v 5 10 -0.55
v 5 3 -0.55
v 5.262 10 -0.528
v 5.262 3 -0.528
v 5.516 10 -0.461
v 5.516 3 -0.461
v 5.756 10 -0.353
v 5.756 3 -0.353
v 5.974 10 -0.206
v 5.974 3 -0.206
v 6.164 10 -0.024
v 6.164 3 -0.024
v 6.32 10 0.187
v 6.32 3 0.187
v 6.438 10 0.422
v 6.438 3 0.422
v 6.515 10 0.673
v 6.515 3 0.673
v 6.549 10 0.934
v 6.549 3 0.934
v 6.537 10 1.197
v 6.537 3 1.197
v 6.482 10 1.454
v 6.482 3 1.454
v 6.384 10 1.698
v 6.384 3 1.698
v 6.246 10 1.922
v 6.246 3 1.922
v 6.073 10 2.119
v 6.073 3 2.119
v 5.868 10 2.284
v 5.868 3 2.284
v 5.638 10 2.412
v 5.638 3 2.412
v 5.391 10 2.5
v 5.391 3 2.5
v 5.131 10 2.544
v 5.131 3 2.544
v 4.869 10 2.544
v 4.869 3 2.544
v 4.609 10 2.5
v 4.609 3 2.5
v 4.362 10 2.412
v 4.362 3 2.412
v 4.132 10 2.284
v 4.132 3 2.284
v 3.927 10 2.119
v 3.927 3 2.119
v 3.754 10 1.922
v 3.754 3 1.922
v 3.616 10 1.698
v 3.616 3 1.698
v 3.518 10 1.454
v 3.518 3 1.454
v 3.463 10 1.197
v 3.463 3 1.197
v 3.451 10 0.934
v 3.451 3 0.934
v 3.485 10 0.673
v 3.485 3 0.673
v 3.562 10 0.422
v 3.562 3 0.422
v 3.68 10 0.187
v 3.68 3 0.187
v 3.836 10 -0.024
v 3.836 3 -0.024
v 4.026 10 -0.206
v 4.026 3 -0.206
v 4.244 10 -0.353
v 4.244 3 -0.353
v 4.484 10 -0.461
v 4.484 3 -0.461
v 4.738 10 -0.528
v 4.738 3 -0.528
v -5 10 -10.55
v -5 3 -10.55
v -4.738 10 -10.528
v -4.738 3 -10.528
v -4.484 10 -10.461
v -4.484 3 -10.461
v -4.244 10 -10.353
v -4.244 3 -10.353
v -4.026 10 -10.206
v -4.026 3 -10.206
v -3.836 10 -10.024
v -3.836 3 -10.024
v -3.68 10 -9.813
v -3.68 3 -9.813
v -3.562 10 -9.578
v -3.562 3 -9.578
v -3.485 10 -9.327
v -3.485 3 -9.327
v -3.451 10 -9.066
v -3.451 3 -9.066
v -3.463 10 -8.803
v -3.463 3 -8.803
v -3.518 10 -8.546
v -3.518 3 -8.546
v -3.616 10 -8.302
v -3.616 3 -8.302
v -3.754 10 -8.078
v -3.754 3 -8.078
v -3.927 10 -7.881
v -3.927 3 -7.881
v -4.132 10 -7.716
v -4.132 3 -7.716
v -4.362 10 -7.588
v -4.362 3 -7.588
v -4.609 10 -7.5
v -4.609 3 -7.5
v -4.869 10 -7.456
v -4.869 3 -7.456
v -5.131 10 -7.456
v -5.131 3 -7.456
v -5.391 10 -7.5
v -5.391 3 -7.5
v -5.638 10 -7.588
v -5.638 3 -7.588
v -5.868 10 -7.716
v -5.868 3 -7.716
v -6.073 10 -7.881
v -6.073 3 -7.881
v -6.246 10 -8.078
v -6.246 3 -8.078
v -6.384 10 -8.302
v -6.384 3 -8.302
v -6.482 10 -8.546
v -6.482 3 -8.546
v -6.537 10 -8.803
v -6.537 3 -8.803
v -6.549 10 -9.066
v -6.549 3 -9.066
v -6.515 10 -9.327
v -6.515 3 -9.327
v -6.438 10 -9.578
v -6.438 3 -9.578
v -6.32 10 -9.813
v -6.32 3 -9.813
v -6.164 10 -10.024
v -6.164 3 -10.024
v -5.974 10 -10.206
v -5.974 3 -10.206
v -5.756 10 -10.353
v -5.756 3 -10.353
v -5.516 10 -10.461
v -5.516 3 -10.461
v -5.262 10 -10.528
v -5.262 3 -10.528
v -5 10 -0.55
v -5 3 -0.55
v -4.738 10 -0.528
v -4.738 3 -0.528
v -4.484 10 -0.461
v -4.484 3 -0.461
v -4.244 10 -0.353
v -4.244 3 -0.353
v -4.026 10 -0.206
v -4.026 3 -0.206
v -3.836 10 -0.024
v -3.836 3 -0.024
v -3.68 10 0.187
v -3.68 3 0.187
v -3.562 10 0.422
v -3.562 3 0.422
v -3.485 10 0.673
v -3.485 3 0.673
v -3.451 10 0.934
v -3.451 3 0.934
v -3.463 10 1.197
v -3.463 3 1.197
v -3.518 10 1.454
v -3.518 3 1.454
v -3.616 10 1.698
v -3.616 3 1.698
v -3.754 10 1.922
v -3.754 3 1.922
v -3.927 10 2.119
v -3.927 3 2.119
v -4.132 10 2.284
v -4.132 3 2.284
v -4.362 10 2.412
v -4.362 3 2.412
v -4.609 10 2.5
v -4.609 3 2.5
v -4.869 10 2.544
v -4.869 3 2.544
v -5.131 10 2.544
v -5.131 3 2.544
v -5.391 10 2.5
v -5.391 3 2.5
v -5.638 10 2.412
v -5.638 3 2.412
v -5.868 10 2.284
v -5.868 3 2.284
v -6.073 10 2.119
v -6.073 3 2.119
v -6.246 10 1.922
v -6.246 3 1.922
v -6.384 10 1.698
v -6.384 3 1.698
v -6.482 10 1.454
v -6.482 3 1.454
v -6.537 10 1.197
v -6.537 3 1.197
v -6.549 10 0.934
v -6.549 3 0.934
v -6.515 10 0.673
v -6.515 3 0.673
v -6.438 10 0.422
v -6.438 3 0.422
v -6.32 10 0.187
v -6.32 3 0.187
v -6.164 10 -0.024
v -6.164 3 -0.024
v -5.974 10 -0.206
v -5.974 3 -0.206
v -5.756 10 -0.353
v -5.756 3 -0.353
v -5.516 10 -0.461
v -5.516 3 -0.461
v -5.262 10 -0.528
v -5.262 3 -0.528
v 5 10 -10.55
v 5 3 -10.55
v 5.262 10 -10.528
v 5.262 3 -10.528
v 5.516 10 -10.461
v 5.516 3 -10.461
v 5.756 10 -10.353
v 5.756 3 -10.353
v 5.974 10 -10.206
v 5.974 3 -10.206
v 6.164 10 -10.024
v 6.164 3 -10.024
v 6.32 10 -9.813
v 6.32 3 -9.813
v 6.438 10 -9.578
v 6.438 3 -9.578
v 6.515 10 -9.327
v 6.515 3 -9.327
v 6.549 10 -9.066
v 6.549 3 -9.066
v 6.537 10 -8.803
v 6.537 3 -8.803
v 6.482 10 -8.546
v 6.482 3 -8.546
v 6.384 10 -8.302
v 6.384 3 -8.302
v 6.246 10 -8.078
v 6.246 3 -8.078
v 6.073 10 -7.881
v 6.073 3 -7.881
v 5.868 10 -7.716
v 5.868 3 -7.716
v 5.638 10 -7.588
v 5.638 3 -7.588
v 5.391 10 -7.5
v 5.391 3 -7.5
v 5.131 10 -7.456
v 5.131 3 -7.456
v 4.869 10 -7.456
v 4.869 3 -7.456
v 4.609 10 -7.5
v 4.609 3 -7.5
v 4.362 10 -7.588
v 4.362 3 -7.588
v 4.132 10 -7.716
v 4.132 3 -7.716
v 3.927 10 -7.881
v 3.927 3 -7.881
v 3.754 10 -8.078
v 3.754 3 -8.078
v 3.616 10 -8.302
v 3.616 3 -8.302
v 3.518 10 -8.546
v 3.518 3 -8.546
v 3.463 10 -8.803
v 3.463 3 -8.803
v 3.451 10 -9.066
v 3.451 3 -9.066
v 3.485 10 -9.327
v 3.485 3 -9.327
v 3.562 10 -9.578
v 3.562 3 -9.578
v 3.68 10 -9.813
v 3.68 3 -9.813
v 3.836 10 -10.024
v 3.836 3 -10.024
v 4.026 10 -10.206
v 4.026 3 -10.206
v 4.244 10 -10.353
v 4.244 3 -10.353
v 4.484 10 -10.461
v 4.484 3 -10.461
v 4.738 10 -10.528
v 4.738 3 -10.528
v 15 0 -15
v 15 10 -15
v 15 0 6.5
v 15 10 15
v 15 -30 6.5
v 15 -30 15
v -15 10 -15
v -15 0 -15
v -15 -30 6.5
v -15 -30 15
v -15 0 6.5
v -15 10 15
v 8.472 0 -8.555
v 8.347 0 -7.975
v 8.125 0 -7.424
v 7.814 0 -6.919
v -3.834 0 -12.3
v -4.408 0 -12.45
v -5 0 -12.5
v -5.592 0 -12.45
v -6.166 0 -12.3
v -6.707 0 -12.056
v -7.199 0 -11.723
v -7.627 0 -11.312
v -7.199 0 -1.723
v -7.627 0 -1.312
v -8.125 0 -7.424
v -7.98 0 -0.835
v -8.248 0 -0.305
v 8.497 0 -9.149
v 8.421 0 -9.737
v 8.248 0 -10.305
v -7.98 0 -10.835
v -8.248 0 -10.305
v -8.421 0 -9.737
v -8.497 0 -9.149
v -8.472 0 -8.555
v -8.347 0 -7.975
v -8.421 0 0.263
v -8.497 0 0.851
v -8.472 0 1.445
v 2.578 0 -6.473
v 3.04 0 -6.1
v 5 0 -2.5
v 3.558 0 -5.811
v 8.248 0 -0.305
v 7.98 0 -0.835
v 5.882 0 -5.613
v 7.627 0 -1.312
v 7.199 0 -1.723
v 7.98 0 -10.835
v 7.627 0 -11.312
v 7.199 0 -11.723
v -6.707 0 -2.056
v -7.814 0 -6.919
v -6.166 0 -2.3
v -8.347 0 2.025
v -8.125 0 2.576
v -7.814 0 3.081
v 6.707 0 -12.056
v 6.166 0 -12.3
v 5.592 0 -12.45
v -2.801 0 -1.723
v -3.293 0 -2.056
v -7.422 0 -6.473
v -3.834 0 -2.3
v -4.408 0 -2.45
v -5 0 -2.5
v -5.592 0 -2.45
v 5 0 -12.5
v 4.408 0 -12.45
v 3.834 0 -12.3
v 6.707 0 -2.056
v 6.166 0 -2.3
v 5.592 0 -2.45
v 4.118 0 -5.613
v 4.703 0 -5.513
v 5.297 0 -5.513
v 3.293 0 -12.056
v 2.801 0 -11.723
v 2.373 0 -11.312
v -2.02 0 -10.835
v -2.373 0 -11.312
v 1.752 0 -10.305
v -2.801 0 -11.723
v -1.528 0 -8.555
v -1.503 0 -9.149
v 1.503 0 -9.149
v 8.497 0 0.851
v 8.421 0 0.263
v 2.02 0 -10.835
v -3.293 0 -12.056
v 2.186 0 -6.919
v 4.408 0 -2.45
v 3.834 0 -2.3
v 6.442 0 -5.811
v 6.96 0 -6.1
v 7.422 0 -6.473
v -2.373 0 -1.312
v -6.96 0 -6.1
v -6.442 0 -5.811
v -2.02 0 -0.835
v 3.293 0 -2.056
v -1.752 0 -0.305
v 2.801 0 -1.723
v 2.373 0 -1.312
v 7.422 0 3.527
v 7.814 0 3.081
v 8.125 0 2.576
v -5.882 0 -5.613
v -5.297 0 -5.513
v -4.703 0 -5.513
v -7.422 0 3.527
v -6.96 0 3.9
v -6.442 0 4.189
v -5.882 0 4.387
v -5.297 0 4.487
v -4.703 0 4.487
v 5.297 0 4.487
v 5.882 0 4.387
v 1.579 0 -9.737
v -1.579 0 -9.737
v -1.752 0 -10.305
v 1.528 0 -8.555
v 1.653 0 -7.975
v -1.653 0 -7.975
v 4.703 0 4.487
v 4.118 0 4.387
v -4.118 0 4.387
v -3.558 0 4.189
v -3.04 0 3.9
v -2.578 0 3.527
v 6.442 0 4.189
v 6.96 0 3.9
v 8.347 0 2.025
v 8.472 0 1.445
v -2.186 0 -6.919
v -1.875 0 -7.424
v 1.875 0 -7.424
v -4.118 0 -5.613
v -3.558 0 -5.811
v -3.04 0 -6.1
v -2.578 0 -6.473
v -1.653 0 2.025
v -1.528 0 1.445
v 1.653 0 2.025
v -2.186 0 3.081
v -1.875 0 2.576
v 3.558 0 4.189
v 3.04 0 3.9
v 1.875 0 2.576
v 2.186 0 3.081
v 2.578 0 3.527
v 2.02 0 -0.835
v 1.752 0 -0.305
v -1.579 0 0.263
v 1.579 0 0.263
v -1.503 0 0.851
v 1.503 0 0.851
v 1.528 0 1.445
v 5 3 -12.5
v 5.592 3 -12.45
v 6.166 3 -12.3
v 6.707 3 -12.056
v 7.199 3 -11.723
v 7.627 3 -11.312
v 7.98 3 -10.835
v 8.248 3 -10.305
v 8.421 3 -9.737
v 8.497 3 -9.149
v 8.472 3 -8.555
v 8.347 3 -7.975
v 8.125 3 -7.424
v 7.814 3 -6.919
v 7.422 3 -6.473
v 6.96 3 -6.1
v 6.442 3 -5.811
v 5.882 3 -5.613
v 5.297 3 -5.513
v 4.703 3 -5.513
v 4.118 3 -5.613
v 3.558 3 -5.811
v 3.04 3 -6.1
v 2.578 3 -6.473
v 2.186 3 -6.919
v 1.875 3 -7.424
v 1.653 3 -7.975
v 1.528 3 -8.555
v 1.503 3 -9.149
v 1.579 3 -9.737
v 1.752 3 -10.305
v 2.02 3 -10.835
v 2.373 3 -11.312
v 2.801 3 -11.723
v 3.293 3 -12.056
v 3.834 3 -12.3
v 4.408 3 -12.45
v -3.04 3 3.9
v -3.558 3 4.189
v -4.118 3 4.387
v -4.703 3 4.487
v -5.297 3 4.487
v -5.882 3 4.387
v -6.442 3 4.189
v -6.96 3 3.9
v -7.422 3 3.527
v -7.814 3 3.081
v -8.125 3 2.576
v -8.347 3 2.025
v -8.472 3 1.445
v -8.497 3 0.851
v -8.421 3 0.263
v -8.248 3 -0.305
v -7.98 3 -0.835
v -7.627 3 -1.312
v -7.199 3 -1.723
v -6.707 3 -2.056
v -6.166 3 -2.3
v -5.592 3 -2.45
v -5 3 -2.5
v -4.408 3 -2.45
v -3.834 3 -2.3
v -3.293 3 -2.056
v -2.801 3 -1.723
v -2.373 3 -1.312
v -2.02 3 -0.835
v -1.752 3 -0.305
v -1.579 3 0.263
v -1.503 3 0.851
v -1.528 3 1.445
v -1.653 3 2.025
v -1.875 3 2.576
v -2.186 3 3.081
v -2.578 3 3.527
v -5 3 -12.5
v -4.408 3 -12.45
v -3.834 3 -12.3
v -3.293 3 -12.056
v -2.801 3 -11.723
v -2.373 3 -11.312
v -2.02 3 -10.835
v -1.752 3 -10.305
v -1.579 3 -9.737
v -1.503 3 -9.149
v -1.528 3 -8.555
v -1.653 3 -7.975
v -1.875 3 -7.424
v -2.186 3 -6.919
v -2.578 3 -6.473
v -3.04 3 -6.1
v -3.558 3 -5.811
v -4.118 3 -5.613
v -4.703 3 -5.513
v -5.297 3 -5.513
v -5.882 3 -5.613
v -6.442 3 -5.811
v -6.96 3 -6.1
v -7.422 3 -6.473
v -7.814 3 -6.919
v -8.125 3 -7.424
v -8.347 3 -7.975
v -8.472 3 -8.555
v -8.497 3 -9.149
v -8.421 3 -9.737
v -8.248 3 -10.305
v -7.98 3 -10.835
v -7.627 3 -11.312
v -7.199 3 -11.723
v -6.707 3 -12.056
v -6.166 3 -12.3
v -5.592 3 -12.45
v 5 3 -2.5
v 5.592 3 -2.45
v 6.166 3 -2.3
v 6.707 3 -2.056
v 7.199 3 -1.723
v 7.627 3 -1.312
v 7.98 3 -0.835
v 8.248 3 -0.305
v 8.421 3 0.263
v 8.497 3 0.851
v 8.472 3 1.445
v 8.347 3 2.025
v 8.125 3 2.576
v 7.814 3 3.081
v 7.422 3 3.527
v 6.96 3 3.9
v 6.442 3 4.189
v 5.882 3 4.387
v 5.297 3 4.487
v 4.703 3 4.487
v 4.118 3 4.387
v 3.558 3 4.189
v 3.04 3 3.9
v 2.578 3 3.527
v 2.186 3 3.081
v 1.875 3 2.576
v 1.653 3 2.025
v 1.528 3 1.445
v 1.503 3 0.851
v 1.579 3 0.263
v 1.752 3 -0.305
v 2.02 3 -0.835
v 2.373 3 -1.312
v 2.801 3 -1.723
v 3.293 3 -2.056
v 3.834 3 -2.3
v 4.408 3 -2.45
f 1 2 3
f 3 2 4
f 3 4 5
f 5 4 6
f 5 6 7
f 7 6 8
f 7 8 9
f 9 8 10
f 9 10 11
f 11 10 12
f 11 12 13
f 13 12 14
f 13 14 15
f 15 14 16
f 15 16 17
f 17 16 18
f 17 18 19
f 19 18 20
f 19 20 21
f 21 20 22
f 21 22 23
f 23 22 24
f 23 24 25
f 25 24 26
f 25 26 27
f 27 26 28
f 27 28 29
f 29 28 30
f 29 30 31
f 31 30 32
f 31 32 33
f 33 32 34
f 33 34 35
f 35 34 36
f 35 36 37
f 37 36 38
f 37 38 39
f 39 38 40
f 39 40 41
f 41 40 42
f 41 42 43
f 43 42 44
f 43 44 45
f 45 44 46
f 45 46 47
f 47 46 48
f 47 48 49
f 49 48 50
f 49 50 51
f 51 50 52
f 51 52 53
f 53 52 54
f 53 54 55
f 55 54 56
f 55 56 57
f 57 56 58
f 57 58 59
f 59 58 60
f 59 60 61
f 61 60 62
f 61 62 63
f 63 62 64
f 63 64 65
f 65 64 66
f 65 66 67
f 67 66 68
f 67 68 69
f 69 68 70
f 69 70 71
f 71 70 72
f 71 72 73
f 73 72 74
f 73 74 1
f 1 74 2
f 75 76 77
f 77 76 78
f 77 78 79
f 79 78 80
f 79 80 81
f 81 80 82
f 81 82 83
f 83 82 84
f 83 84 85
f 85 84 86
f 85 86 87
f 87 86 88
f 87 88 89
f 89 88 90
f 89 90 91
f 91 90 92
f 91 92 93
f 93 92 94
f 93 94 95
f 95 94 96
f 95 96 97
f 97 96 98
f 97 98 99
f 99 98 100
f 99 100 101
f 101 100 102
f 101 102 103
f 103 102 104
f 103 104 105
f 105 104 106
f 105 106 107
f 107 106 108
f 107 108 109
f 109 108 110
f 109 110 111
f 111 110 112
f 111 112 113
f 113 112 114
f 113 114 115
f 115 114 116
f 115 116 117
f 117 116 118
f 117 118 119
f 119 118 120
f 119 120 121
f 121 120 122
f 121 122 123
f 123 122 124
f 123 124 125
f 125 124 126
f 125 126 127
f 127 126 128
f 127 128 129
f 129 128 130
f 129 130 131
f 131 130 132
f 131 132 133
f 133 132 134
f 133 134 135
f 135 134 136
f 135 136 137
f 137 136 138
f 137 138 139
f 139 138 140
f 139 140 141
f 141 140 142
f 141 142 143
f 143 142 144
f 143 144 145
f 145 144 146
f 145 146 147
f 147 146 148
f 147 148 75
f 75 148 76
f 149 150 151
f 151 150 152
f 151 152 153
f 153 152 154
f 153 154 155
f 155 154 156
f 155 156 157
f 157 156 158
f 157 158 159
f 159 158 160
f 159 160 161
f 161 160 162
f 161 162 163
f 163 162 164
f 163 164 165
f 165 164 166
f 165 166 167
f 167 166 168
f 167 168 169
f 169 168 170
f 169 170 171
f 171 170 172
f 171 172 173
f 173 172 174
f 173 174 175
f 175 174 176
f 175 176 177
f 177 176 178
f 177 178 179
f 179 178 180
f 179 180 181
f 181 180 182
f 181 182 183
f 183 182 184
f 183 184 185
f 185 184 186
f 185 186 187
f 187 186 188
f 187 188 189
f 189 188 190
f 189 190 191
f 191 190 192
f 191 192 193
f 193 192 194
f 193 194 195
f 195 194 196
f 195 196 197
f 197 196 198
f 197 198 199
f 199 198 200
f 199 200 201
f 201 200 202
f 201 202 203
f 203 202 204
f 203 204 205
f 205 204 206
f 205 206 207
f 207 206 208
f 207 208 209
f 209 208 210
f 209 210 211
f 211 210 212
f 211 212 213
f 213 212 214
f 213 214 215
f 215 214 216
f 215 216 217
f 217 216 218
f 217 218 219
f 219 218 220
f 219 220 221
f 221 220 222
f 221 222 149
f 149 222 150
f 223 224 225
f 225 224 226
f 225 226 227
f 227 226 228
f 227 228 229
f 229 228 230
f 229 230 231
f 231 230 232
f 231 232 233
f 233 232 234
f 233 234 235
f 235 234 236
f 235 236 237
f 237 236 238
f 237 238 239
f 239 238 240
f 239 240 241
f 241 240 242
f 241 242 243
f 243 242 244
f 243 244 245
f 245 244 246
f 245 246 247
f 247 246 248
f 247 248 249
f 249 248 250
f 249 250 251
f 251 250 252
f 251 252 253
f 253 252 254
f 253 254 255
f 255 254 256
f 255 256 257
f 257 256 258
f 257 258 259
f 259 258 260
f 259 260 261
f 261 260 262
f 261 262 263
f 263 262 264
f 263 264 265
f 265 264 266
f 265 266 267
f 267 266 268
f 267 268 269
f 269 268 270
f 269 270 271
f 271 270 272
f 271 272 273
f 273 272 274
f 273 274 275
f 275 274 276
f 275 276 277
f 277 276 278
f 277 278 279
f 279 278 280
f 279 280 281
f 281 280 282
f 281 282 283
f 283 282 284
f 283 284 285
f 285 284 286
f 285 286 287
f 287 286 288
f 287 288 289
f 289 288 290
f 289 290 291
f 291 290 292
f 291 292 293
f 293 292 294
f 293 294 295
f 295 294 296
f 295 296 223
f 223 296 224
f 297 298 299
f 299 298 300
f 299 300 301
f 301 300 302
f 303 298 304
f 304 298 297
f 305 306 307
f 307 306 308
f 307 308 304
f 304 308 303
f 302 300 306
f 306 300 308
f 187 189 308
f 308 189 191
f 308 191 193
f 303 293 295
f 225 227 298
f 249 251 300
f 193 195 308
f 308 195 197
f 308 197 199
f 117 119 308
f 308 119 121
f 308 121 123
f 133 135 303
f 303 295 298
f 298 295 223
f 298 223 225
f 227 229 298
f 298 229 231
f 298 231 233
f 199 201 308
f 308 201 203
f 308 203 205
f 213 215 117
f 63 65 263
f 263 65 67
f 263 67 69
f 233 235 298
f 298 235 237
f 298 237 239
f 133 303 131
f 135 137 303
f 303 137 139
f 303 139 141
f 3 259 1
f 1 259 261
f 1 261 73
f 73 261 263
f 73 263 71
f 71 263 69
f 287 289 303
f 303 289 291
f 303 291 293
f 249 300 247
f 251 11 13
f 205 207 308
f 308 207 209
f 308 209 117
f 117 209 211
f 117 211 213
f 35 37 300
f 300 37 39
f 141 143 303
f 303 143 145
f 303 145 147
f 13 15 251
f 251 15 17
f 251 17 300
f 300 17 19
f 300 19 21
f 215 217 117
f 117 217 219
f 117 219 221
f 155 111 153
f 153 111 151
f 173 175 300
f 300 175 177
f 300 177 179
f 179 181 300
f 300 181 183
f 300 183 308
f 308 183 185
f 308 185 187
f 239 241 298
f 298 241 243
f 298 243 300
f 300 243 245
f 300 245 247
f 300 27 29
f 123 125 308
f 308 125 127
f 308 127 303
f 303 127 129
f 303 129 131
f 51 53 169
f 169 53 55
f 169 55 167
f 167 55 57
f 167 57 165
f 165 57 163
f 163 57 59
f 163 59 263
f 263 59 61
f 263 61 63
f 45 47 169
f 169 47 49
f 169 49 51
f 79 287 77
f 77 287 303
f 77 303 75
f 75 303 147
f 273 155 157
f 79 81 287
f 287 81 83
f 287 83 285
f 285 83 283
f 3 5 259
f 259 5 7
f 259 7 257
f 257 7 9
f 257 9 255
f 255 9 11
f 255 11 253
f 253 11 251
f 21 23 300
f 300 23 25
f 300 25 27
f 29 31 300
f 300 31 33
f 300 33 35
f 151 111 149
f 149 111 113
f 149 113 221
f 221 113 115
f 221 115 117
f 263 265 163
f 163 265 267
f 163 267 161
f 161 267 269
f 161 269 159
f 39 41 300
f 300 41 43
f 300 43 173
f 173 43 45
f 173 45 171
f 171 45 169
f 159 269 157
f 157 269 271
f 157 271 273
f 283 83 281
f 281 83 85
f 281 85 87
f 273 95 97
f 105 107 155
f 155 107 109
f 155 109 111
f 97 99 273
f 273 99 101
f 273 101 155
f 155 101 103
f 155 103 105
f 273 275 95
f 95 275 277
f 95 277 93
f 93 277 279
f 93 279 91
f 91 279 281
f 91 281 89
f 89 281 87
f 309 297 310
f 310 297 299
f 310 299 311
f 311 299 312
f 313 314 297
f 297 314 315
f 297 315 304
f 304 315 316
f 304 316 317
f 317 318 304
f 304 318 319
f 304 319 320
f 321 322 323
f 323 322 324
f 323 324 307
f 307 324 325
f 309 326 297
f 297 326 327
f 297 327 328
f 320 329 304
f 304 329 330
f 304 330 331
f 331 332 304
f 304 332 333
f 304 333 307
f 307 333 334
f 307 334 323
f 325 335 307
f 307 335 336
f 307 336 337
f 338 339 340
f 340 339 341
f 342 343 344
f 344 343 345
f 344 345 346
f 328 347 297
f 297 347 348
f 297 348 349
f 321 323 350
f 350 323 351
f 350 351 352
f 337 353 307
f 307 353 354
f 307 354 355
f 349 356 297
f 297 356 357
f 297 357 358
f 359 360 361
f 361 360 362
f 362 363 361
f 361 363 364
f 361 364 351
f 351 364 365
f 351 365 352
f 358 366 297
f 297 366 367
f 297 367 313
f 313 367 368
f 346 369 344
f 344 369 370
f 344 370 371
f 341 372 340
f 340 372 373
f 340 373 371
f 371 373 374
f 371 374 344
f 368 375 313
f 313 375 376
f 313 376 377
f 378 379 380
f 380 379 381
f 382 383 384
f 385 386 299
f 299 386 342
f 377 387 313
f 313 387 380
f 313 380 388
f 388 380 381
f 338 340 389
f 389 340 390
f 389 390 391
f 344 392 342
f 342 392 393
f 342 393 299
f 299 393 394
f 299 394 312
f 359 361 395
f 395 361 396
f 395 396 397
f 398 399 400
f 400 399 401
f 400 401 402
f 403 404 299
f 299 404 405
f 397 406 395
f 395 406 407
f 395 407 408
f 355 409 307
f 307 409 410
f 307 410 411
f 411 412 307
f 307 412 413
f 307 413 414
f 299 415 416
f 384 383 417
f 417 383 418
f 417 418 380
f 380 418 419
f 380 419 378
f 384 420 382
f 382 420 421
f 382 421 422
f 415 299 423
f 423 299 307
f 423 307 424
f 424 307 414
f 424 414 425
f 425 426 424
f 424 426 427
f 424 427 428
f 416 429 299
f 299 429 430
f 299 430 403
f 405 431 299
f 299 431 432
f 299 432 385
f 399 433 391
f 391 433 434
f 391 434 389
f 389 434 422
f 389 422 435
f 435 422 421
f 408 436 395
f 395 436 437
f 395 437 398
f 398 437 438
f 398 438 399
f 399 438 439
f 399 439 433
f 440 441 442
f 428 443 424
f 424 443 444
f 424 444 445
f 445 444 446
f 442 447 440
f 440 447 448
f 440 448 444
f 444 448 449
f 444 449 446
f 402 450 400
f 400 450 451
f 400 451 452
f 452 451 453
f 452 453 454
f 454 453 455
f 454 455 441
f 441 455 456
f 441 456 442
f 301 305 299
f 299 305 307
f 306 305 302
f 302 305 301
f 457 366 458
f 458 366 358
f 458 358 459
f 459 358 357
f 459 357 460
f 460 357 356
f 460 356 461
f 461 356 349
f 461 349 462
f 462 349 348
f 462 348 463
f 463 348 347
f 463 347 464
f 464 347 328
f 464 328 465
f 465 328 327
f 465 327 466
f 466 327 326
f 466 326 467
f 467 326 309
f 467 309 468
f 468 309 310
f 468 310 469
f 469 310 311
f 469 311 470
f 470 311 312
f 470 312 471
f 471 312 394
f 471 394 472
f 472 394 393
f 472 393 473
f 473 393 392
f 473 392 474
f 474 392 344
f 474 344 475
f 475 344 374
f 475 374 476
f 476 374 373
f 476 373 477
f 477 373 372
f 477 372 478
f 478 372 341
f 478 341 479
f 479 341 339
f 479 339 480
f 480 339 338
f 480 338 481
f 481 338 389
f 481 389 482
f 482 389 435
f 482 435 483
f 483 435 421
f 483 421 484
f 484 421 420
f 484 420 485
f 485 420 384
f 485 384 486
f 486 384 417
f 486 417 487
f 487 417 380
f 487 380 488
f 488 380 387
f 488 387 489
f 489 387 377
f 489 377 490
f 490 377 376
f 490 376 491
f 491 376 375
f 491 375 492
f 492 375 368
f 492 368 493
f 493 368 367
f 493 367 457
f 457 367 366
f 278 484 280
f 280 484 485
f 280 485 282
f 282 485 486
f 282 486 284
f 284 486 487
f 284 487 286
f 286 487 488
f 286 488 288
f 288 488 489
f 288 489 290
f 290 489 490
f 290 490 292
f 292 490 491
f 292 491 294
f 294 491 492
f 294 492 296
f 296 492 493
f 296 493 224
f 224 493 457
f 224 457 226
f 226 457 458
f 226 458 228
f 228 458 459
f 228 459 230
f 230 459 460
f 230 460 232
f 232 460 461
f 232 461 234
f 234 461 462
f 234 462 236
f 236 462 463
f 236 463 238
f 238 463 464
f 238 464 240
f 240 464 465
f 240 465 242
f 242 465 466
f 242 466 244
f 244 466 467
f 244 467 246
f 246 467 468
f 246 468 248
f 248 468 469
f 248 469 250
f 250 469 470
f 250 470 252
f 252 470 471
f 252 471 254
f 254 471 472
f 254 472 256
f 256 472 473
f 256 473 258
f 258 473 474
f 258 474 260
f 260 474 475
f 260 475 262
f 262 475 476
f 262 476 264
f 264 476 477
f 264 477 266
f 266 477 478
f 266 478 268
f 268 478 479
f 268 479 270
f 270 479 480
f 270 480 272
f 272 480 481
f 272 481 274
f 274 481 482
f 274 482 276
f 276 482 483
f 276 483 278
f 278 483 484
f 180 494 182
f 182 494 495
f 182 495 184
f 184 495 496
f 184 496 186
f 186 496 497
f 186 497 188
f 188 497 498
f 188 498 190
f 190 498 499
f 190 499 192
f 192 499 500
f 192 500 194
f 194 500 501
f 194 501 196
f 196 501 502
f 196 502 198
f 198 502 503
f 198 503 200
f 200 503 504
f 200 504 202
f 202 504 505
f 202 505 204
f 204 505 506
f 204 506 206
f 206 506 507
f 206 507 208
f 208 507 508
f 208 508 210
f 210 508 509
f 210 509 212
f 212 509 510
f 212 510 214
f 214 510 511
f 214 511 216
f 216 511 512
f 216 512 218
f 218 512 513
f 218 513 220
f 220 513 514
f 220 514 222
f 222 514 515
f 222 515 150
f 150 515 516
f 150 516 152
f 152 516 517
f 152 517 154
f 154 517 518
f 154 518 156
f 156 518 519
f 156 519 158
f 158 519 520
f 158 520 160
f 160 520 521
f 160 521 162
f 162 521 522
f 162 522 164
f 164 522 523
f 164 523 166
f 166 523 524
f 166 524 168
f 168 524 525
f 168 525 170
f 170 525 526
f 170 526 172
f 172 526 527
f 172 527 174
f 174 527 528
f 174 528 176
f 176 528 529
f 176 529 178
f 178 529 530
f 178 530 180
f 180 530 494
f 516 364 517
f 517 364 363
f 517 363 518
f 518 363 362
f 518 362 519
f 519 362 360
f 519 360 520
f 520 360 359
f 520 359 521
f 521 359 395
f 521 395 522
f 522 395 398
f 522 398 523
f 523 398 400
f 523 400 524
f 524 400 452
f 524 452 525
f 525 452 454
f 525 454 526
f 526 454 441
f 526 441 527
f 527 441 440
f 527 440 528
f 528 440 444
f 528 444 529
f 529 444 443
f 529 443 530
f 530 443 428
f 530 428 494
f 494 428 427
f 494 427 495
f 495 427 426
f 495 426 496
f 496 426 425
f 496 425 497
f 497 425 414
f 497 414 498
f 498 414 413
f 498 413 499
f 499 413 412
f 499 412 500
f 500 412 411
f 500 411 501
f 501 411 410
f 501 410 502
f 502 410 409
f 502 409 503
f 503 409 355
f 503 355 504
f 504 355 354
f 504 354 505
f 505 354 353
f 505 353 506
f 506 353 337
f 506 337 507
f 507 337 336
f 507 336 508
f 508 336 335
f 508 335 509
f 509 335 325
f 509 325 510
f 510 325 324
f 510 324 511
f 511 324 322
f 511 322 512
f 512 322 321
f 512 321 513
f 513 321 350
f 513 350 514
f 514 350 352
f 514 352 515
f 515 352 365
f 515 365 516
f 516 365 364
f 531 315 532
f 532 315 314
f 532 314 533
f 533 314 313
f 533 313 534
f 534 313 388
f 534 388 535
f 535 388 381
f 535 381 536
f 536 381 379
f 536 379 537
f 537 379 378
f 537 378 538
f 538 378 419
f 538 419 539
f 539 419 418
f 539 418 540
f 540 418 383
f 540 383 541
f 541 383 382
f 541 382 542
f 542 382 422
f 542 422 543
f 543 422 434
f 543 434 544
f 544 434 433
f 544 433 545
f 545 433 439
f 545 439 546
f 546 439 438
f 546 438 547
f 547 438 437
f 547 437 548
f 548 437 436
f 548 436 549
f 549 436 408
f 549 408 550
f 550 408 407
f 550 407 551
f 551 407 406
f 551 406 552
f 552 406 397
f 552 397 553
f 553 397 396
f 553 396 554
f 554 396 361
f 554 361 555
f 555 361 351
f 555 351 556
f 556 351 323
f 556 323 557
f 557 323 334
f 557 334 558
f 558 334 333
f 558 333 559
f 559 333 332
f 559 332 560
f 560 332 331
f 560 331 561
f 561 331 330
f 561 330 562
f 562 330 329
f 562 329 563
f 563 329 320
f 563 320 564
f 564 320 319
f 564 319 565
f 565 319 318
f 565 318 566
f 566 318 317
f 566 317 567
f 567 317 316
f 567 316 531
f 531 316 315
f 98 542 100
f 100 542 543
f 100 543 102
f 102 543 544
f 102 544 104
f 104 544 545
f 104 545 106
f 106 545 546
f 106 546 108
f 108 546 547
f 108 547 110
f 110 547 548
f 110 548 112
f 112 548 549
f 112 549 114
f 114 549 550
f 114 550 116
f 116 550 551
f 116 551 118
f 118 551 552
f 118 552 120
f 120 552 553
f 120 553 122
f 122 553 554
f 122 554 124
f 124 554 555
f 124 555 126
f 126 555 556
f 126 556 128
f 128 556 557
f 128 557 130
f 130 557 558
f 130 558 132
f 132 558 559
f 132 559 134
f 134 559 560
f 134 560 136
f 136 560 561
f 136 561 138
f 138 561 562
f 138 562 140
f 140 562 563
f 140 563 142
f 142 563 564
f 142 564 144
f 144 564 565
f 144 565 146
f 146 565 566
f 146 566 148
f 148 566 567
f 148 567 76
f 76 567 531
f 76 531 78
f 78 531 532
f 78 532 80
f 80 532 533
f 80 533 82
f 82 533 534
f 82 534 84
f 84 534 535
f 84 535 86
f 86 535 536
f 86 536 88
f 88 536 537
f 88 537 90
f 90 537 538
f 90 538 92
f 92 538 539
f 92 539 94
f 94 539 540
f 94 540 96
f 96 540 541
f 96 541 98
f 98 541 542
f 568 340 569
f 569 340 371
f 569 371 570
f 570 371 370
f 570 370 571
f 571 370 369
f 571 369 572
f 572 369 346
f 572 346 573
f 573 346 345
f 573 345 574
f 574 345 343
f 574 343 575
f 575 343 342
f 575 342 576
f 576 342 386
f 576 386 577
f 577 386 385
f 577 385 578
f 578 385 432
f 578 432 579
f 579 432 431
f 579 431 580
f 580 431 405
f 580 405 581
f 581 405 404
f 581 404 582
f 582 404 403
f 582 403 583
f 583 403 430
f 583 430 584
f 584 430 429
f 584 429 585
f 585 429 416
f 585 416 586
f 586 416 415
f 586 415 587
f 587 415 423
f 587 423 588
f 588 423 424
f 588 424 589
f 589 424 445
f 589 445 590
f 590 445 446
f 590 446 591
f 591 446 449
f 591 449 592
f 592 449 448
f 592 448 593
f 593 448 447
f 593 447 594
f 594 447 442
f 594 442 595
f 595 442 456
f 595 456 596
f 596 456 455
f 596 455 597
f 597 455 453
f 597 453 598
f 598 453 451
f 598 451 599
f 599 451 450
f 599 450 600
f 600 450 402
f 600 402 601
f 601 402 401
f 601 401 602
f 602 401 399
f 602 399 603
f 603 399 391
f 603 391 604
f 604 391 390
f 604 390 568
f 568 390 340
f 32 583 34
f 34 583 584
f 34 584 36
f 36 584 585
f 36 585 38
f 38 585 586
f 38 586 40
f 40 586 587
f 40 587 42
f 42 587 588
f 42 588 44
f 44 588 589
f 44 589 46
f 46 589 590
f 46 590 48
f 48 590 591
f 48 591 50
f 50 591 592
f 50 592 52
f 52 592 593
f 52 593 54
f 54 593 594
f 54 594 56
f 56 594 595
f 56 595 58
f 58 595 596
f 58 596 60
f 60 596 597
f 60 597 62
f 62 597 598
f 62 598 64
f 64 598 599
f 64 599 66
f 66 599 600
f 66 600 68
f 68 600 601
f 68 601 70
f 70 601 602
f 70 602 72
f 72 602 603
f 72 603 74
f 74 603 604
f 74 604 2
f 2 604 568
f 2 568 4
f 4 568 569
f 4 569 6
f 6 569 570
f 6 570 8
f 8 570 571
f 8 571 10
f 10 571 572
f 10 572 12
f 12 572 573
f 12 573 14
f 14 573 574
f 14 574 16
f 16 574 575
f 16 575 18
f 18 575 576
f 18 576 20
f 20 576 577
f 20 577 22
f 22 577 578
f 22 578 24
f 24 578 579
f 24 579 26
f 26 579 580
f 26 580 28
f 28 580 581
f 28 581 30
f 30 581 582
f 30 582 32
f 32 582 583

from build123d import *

# Parameters (mm, degrees)
SKETCH_1_W          = 30
SKETCH_1_H          = 30
EXTRUDE_1_DEPTH     = 10
SKETCH_3_W          = 30
SKETCH_3_H          = 7
SKETCH_3_H_2        = 1.5
EXTRUDE_3_DEPTH     = 30
SKETCH_4_R          = 1.55
CUT_EXTRUDE_1_DEPTH = 30
SKETCH_5_R          = 3.5
SKETCH_5_R_2        = 1.55
CUT_EXTRUDE_2_DEPTH = 3


with BuildPart() as part:
    # 草图1 → 凸台-拉伸1 (new body)
    with BuildSketch(Plane(origin=(0, 0, 0), x_dir=(1, 0, 0), z_dir=(0, 1, 0))):
        Rectangle(SKETCH_1_W, SKETCH_1_H)
    extrude(amount=EXTRUDE_1_DEPTH)

    # 草图3 → 凸台-拉伸3 (add)
    with BuildSketch(Plane.XZ):
        with Locations((0, 10)):
            Rectangle(SKETCH_3_W, SKETCH_3_H)
        with Locations((0, 14.25)):
            Rectangle(SKETCH_3_W, SKETCH_3_H_2)
    extrude(amount=EXTRUDE_3_DEPTH)

    # 草图4 → 切除-拉伸1 (cut)
    with BuildSketch(Plane.XZ):
        with Locations(Location((5, 1, 0), (0, 0, 270))):
            Circle(SKETCH_4_R)
        with Locations(Location((5, -9, 0), (0, 0, 270))):
            Circle(SKETCH_4_R)
        with Locations(Location((-5, 1, 0), (0, 0, 270))):
            Circle(SKETCH_4_R)
        with Locations(Location((-5, -9, 0), (0, 0, 270))):
            Circle(SKETCH_4_R)
    extrude(amount=-CUT_EXTRUDE_1_DEPTH, mode=Mode.SUBTRACT)

    # 草图5 → 切除-拉伸2 (cut)
    # profile 1 of 4: a face of its own
    with BuildSketch(Plane.XZ):
        with Locations(Location((5, 1, 0), (0, 0, 270))):
            Circle(SKETCH_5_R)
        with Locations(Location((5, 1, 0), (0, 0, 270))):
            Circle(SKETCH_5_R_2, mode=Mode.SUBTRACT)
    # profile 2 of 4: a face of its own
    with BuildSketch(Plane.XZ):
        with Locations(Location((5, -9, 0), (0, 0, 270))):
            Circle(SKETCH_5_R)
        with Locations(Location((5, -9, 0), (0, 0, 270))):
            Circle(SKETCH_5_R_2, mode=Mode.SUBTRACT)
    # profile 3 of 4: a face of its own
    with BuildSketch(Plane.XZ):
        with Locations(Location((-5, -9, 0), (0, 0, 270))):
            Circle(SKETCH_5_R)
        with Locations(Location((-5, -9, 0), (0, 0, 270))):
            Circle(SKETCH_5_R_2, mode=Mode.SUBTRACT)
    # profile 4 of 4: a face of its own
    with BuildSketch(Plane.XZ):
        with Locations(Location((-5, 1, 0), (0, 0, 270))):
            Circle(SKETCH_5_R)
    extrude(amount=-CUT_EXTRUDE_2_DEPTH, mode=Mode.SUBTRACT)


solid = part.part
